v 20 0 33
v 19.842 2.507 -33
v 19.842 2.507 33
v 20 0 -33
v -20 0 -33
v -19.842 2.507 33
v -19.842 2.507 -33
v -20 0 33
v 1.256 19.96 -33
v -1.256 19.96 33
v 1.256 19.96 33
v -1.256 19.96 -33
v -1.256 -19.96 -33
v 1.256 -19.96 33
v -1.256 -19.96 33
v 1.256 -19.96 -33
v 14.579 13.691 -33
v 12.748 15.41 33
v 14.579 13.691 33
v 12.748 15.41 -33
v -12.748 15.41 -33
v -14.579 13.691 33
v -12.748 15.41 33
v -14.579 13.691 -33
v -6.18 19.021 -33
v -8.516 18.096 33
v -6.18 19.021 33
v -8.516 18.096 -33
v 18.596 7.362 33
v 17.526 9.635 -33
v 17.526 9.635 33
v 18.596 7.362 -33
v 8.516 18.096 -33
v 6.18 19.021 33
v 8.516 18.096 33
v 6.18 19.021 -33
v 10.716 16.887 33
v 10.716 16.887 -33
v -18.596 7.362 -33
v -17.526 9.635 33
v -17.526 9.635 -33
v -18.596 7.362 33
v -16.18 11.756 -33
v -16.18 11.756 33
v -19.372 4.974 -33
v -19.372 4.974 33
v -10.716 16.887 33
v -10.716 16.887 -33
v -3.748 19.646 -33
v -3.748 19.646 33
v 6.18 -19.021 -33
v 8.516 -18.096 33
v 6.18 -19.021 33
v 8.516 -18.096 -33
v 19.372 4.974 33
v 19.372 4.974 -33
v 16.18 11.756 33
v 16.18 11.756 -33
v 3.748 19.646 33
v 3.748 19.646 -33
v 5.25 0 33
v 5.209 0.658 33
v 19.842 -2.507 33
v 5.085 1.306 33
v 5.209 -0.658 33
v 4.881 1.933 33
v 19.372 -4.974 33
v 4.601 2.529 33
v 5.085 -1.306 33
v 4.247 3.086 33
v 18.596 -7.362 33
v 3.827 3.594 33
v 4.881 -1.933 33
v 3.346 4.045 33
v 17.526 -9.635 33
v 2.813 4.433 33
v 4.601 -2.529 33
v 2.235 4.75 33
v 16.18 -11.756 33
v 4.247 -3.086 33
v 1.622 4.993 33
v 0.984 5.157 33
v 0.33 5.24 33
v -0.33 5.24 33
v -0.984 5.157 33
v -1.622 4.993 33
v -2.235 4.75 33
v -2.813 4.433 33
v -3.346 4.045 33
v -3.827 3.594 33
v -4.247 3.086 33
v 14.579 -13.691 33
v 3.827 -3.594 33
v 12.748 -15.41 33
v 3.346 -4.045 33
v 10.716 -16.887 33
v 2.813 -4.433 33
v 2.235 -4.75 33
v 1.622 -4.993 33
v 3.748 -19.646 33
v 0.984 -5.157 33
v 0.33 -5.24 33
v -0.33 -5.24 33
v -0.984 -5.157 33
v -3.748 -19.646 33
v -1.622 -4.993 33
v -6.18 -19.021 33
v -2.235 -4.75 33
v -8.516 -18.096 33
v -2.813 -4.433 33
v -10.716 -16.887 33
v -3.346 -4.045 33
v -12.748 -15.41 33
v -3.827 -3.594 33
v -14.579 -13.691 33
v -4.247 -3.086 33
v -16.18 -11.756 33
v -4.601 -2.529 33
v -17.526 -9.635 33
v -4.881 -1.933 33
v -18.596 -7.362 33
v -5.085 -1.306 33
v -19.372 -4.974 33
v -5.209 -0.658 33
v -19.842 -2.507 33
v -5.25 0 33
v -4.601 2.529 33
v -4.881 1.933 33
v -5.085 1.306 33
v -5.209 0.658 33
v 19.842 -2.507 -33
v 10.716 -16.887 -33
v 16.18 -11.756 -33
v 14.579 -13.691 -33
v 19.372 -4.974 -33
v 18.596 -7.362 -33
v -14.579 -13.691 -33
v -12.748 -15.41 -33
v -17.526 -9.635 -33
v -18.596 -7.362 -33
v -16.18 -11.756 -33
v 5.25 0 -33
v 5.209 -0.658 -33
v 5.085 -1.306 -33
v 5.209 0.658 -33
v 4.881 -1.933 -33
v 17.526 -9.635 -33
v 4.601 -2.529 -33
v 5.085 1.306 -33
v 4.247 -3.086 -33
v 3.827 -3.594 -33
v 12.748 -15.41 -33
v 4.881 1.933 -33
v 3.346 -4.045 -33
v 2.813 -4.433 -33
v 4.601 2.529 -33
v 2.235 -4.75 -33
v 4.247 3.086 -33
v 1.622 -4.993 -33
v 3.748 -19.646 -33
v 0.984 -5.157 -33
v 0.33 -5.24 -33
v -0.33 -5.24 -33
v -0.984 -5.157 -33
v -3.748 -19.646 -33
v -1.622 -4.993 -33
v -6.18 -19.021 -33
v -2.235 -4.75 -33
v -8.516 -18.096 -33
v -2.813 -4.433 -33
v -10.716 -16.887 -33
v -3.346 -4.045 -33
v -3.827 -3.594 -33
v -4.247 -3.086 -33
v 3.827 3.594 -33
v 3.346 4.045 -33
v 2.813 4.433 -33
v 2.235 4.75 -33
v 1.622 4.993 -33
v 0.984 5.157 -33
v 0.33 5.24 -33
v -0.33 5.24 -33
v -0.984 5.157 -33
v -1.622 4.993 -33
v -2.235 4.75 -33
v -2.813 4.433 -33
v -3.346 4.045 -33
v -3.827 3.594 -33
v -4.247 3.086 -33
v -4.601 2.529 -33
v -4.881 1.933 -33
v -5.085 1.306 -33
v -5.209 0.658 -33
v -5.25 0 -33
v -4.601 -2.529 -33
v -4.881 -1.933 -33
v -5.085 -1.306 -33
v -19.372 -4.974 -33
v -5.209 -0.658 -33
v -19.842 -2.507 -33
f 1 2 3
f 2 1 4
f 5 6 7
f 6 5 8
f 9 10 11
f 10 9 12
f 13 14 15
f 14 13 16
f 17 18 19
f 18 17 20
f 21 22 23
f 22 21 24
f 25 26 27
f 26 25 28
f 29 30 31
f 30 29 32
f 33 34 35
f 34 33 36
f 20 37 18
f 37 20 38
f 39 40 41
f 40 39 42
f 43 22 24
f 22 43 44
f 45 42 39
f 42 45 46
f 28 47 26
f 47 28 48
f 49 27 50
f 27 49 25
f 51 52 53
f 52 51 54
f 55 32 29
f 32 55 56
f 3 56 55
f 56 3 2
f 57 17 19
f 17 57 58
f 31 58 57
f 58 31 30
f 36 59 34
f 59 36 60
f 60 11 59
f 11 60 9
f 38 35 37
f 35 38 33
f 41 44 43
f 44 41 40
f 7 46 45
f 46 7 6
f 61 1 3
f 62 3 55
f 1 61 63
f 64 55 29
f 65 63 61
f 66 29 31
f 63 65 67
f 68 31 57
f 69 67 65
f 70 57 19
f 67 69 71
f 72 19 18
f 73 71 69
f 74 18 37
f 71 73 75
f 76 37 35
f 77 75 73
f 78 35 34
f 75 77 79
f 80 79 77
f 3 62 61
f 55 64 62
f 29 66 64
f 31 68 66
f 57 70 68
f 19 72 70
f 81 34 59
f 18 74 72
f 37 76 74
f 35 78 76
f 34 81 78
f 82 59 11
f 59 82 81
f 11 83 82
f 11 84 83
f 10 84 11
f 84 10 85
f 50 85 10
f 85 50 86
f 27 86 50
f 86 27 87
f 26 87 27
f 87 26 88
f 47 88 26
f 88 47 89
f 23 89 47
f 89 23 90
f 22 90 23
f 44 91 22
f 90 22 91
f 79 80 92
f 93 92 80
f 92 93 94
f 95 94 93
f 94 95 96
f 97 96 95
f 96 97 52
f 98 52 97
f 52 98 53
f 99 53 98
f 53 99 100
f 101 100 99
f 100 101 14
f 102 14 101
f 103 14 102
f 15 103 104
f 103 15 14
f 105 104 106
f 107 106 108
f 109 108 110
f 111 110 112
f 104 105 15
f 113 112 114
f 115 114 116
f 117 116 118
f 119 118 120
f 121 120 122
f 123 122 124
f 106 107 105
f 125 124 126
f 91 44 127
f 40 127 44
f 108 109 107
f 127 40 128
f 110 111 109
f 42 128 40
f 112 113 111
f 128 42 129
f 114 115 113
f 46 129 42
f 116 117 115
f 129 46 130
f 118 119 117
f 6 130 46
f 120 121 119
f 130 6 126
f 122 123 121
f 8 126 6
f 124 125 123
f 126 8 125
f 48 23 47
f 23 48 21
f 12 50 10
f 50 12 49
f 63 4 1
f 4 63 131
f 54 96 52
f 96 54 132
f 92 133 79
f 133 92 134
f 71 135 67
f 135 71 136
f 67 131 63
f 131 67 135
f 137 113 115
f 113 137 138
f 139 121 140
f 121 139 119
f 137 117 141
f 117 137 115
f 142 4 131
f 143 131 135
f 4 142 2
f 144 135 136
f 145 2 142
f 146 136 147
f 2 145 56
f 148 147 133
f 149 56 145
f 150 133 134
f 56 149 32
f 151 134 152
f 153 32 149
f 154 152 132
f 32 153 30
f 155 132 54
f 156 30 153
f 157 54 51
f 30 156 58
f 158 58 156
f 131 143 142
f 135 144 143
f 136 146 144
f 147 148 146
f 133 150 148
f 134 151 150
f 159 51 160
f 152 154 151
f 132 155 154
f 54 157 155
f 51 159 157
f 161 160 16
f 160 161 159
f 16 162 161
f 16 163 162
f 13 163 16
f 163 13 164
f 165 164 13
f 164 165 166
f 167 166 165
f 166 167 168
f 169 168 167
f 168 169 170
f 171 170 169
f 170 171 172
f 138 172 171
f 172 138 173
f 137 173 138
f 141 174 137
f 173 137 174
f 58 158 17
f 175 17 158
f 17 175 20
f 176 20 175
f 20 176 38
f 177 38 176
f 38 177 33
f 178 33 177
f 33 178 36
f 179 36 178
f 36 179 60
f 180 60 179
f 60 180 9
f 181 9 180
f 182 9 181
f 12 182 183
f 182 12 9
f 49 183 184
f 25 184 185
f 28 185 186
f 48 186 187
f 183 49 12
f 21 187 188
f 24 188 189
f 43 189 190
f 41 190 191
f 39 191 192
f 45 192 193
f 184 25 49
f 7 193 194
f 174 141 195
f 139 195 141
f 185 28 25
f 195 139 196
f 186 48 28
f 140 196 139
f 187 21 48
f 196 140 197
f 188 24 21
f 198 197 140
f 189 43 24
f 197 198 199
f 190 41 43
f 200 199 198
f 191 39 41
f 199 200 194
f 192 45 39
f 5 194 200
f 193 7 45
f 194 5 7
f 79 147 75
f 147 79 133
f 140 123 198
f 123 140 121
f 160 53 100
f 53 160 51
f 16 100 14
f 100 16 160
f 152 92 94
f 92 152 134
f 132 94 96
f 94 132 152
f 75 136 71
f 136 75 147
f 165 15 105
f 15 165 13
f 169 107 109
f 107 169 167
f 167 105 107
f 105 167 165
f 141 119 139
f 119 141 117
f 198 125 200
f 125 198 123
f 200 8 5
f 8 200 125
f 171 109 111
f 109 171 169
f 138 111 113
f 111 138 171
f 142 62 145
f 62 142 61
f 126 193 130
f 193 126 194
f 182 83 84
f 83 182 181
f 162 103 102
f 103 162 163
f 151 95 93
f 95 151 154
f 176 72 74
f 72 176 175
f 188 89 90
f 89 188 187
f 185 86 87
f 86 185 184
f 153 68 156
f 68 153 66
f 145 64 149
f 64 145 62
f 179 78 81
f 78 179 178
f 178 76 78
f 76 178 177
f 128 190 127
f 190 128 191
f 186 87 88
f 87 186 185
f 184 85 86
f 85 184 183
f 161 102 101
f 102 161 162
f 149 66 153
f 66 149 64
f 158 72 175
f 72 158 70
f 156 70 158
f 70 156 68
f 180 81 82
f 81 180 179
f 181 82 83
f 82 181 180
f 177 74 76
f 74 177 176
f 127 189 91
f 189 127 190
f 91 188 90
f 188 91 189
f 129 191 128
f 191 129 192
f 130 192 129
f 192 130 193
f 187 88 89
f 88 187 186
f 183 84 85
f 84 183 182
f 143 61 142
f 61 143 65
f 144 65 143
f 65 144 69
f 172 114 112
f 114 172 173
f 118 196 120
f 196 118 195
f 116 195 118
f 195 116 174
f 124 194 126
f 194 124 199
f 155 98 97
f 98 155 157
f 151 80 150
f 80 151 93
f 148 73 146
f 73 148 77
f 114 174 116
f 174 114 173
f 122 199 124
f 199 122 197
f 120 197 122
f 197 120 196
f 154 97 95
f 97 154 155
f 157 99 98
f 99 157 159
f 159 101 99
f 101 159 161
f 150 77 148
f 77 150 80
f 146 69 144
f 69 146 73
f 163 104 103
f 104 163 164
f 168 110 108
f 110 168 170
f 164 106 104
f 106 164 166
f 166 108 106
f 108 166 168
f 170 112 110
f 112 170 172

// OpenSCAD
$fn = 50;


difference() {
	union() {
		translate(v = [0, 0, -33.0000000000]) {
			cylinder(h = 66, r = 20.0000000000);
		}
	}
	union() {
		translate(v = [0, 0, -100.0000000000]) {
			cylinder(h = 200, r = 5.2500000000);
		}
	}
}
